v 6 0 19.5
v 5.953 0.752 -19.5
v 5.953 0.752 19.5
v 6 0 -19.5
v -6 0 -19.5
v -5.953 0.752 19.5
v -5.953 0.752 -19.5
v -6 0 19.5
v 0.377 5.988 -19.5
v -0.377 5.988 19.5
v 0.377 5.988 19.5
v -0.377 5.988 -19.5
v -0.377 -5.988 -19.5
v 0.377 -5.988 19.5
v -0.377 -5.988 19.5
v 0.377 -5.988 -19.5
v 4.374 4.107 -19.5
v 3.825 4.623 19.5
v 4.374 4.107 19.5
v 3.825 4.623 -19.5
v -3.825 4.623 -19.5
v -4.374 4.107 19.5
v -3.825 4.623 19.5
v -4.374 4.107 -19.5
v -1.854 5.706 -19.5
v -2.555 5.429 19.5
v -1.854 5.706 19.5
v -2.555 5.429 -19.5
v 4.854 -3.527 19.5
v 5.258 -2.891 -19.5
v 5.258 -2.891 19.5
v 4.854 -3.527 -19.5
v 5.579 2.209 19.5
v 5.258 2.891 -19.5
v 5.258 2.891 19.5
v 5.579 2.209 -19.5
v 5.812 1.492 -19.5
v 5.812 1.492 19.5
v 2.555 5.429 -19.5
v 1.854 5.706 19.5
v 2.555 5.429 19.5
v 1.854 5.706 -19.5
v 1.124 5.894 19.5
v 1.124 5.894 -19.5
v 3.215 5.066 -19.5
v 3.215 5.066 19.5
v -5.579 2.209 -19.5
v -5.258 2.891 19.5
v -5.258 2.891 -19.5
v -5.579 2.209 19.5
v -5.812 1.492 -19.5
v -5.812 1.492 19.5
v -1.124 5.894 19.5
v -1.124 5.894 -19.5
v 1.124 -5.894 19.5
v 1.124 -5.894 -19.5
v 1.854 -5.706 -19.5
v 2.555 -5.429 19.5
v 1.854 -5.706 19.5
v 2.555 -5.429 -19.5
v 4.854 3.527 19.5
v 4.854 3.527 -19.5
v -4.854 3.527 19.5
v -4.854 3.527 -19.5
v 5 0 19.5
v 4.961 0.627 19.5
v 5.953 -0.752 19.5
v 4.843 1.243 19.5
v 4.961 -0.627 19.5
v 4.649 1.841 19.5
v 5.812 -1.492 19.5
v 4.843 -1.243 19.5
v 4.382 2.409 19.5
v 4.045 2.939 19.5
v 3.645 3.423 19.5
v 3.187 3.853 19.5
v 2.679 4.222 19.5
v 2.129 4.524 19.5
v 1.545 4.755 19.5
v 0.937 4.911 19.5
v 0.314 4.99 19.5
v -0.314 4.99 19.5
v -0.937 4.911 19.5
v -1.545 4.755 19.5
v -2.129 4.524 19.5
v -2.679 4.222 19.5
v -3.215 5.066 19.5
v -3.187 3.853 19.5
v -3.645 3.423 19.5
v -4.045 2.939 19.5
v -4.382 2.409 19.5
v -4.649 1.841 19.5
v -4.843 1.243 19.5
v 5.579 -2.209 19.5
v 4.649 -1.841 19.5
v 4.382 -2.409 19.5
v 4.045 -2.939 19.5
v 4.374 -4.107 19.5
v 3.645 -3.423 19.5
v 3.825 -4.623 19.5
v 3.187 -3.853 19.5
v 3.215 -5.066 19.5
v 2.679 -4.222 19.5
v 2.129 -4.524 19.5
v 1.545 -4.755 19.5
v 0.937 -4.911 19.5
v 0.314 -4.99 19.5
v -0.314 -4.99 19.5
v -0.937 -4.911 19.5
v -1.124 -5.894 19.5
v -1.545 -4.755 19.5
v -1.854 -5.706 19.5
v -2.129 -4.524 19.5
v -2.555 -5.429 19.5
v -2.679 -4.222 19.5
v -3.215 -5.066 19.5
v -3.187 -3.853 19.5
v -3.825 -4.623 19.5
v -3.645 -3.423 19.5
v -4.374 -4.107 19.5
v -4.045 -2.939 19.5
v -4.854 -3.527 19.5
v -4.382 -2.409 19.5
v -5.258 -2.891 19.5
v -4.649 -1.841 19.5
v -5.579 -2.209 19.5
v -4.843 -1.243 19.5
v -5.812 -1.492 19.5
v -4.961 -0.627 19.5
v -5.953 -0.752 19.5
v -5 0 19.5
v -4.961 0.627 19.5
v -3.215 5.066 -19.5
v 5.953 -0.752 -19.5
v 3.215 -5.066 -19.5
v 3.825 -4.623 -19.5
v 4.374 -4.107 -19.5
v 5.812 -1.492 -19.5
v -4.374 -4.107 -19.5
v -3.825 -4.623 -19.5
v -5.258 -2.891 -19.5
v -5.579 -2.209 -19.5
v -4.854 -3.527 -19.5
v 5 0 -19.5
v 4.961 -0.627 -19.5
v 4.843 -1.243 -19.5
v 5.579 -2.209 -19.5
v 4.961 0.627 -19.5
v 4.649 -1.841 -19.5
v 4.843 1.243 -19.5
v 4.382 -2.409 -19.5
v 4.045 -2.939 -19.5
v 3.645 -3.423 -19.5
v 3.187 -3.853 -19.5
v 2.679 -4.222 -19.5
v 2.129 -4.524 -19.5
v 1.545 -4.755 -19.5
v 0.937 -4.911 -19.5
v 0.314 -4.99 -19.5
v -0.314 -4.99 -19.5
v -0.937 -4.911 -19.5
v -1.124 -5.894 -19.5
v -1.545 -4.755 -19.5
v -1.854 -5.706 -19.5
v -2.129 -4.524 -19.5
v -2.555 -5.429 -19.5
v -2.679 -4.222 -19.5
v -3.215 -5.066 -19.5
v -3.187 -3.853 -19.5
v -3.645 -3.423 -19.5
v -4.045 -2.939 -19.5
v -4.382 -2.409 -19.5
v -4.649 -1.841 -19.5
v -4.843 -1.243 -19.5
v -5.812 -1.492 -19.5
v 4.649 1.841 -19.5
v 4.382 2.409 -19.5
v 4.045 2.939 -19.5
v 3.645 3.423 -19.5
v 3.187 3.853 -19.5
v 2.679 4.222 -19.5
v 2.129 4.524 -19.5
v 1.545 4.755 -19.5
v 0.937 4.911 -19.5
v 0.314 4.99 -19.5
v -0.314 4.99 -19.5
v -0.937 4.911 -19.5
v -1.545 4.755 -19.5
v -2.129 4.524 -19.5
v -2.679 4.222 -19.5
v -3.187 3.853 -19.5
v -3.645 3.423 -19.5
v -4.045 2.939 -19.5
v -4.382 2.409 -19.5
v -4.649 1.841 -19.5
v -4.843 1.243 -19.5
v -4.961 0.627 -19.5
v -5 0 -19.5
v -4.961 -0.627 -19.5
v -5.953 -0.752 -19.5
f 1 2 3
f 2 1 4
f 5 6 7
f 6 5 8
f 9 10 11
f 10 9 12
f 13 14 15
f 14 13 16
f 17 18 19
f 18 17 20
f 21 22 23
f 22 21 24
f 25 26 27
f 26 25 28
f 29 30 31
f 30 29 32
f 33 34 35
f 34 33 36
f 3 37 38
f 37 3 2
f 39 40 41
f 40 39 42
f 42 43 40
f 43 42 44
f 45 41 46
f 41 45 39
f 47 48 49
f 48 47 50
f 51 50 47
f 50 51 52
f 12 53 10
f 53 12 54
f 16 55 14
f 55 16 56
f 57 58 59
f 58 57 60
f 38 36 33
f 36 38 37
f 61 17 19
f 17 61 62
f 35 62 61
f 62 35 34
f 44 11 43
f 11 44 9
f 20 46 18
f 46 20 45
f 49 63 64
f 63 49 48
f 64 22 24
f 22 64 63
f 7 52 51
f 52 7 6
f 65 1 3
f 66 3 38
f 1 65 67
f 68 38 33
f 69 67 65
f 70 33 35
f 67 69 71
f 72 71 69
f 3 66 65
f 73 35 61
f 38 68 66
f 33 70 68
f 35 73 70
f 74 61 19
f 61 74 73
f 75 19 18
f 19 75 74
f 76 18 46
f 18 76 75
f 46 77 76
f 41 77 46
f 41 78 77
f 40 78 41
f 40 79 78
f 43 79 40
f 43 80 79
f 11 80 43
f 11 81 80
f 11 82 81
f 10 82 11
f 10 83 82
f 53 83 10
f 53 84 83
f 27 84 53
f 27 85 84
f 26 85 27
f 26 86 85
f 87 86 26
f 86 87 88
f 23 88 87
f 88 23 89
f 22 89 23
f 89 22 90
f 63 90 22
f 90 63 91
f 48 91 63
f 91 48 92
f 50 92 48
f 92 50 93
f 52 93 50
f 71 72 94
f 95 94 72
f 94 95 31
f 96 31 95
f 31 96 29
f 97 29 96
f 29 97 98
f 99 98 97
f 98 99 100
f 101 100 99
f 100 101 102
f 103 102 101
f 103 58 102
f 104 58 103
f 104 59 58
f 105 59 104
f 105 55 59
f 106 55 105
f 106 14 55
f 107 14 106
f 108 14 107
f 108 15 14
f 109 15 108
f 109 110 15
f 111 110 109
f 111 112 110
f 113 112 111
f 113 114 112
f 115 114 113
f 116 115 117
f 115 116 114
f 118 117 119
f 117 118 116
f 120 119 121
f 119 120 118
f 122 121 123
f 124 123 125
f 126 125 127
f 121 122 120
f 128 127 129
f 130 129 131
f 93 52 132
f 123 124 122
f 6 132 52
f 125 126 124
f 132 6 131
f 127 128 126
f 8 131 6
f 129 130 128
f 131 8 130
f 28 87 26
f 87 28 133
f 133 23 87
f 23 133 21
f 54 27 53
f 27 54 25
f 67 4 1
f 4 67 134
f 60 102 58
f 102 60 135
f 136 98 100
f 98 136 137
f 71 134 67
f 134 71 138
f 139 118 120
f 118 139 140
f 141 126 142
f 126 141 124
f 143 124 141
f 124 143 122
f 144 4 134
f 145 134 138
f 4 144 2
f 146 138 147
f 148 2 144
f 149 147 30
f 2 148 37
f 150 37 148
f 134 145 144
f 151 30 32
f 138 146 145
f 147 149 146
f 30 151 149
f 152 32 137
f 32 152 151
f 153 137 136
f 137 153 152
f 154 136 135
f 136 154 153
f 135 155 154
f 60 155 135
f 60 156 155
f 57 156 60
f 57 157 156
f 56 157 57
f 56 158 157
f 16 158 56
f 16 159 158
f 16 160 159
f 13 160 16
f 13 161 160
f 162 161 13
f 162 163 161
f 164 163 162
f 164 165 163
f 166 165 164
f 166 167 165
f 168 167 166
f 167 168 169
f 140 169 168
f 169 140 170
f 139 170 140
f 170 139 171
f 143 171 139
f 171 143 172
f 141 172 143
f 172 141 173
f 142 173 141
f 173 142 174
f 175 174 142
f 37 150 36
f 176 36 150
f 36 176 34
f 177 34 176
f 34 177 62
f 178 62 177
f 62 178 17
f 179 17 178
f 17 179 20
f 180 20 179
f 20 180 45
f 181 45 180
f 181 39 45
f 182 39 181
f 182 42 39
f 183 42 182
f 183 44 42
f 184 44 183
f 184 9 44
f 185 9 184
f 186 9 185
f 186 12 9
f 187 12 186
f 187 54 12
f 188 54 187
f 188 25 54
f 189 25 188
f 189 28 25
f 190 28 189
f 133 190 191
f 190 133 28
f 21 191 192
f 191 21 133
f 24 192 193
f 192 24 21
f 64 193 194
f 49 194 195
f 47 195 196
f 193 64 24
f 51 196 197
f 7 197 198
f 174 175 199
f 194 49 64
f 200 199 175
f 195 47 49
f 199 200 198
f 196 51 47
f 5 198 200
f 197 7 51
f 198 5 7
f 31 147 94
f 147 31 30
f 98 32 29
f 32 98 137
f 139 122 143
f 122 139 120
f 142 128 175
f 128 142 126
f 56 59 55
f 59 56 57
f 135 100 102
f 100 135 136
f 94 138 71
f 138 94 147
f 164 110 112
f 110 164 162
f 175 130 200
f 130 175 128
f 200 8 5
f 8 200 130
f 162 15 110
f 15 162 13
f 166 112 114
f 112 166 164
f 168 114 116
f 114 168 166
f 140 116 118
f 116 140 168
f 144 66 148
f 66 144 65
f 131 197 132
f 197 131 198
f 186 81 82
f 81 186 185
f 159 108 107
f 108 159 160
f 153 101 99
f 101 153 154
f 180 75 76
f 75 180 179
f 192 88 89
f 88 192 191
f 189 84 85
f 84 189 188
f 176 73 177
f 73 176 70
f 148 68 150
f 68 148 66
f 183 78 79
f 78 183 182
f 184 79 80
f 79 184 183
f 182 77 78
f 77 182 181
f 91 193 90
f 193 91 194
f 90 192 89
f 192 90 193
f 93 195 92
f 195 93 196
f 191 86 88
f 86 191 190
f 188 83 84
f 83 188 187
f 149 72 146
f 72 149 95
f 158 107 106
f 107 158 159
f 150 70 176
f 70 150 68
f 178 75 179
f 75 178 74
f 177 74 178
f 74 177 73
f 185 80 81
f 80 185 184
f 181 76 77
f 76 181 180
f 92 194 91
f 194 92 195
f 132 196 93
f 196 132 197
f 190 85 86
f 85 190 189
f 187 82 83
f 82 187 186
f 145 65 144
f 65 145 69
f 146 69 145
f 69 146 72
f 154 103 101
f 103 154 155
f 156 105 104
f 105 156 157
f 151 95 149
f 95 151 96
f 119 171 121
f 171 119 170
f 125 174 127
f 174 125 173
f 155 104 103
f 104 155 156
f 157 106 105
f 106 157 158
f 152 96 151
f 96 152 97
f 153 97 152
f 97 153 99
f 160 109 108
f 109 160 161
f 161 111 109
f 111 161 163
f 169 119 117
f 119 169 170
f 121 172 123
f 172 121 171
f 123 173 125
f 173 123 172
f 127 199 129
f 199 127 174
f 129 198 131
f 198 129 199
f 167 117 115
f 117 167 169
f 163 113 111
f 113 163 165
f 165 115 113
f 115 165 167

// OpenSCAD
$fn = 50;


difference() {
	union() {
		translate(v = [0, 0, -19.5000000000]) {
			cylinder(h = 39, r = 6.0000000000);
		}
	}
	union() {
		translate(v = [0, 0, -100.0000000000]) {
			cylinder(h = 200, r = 5.0000000000);
		}
	}
}
